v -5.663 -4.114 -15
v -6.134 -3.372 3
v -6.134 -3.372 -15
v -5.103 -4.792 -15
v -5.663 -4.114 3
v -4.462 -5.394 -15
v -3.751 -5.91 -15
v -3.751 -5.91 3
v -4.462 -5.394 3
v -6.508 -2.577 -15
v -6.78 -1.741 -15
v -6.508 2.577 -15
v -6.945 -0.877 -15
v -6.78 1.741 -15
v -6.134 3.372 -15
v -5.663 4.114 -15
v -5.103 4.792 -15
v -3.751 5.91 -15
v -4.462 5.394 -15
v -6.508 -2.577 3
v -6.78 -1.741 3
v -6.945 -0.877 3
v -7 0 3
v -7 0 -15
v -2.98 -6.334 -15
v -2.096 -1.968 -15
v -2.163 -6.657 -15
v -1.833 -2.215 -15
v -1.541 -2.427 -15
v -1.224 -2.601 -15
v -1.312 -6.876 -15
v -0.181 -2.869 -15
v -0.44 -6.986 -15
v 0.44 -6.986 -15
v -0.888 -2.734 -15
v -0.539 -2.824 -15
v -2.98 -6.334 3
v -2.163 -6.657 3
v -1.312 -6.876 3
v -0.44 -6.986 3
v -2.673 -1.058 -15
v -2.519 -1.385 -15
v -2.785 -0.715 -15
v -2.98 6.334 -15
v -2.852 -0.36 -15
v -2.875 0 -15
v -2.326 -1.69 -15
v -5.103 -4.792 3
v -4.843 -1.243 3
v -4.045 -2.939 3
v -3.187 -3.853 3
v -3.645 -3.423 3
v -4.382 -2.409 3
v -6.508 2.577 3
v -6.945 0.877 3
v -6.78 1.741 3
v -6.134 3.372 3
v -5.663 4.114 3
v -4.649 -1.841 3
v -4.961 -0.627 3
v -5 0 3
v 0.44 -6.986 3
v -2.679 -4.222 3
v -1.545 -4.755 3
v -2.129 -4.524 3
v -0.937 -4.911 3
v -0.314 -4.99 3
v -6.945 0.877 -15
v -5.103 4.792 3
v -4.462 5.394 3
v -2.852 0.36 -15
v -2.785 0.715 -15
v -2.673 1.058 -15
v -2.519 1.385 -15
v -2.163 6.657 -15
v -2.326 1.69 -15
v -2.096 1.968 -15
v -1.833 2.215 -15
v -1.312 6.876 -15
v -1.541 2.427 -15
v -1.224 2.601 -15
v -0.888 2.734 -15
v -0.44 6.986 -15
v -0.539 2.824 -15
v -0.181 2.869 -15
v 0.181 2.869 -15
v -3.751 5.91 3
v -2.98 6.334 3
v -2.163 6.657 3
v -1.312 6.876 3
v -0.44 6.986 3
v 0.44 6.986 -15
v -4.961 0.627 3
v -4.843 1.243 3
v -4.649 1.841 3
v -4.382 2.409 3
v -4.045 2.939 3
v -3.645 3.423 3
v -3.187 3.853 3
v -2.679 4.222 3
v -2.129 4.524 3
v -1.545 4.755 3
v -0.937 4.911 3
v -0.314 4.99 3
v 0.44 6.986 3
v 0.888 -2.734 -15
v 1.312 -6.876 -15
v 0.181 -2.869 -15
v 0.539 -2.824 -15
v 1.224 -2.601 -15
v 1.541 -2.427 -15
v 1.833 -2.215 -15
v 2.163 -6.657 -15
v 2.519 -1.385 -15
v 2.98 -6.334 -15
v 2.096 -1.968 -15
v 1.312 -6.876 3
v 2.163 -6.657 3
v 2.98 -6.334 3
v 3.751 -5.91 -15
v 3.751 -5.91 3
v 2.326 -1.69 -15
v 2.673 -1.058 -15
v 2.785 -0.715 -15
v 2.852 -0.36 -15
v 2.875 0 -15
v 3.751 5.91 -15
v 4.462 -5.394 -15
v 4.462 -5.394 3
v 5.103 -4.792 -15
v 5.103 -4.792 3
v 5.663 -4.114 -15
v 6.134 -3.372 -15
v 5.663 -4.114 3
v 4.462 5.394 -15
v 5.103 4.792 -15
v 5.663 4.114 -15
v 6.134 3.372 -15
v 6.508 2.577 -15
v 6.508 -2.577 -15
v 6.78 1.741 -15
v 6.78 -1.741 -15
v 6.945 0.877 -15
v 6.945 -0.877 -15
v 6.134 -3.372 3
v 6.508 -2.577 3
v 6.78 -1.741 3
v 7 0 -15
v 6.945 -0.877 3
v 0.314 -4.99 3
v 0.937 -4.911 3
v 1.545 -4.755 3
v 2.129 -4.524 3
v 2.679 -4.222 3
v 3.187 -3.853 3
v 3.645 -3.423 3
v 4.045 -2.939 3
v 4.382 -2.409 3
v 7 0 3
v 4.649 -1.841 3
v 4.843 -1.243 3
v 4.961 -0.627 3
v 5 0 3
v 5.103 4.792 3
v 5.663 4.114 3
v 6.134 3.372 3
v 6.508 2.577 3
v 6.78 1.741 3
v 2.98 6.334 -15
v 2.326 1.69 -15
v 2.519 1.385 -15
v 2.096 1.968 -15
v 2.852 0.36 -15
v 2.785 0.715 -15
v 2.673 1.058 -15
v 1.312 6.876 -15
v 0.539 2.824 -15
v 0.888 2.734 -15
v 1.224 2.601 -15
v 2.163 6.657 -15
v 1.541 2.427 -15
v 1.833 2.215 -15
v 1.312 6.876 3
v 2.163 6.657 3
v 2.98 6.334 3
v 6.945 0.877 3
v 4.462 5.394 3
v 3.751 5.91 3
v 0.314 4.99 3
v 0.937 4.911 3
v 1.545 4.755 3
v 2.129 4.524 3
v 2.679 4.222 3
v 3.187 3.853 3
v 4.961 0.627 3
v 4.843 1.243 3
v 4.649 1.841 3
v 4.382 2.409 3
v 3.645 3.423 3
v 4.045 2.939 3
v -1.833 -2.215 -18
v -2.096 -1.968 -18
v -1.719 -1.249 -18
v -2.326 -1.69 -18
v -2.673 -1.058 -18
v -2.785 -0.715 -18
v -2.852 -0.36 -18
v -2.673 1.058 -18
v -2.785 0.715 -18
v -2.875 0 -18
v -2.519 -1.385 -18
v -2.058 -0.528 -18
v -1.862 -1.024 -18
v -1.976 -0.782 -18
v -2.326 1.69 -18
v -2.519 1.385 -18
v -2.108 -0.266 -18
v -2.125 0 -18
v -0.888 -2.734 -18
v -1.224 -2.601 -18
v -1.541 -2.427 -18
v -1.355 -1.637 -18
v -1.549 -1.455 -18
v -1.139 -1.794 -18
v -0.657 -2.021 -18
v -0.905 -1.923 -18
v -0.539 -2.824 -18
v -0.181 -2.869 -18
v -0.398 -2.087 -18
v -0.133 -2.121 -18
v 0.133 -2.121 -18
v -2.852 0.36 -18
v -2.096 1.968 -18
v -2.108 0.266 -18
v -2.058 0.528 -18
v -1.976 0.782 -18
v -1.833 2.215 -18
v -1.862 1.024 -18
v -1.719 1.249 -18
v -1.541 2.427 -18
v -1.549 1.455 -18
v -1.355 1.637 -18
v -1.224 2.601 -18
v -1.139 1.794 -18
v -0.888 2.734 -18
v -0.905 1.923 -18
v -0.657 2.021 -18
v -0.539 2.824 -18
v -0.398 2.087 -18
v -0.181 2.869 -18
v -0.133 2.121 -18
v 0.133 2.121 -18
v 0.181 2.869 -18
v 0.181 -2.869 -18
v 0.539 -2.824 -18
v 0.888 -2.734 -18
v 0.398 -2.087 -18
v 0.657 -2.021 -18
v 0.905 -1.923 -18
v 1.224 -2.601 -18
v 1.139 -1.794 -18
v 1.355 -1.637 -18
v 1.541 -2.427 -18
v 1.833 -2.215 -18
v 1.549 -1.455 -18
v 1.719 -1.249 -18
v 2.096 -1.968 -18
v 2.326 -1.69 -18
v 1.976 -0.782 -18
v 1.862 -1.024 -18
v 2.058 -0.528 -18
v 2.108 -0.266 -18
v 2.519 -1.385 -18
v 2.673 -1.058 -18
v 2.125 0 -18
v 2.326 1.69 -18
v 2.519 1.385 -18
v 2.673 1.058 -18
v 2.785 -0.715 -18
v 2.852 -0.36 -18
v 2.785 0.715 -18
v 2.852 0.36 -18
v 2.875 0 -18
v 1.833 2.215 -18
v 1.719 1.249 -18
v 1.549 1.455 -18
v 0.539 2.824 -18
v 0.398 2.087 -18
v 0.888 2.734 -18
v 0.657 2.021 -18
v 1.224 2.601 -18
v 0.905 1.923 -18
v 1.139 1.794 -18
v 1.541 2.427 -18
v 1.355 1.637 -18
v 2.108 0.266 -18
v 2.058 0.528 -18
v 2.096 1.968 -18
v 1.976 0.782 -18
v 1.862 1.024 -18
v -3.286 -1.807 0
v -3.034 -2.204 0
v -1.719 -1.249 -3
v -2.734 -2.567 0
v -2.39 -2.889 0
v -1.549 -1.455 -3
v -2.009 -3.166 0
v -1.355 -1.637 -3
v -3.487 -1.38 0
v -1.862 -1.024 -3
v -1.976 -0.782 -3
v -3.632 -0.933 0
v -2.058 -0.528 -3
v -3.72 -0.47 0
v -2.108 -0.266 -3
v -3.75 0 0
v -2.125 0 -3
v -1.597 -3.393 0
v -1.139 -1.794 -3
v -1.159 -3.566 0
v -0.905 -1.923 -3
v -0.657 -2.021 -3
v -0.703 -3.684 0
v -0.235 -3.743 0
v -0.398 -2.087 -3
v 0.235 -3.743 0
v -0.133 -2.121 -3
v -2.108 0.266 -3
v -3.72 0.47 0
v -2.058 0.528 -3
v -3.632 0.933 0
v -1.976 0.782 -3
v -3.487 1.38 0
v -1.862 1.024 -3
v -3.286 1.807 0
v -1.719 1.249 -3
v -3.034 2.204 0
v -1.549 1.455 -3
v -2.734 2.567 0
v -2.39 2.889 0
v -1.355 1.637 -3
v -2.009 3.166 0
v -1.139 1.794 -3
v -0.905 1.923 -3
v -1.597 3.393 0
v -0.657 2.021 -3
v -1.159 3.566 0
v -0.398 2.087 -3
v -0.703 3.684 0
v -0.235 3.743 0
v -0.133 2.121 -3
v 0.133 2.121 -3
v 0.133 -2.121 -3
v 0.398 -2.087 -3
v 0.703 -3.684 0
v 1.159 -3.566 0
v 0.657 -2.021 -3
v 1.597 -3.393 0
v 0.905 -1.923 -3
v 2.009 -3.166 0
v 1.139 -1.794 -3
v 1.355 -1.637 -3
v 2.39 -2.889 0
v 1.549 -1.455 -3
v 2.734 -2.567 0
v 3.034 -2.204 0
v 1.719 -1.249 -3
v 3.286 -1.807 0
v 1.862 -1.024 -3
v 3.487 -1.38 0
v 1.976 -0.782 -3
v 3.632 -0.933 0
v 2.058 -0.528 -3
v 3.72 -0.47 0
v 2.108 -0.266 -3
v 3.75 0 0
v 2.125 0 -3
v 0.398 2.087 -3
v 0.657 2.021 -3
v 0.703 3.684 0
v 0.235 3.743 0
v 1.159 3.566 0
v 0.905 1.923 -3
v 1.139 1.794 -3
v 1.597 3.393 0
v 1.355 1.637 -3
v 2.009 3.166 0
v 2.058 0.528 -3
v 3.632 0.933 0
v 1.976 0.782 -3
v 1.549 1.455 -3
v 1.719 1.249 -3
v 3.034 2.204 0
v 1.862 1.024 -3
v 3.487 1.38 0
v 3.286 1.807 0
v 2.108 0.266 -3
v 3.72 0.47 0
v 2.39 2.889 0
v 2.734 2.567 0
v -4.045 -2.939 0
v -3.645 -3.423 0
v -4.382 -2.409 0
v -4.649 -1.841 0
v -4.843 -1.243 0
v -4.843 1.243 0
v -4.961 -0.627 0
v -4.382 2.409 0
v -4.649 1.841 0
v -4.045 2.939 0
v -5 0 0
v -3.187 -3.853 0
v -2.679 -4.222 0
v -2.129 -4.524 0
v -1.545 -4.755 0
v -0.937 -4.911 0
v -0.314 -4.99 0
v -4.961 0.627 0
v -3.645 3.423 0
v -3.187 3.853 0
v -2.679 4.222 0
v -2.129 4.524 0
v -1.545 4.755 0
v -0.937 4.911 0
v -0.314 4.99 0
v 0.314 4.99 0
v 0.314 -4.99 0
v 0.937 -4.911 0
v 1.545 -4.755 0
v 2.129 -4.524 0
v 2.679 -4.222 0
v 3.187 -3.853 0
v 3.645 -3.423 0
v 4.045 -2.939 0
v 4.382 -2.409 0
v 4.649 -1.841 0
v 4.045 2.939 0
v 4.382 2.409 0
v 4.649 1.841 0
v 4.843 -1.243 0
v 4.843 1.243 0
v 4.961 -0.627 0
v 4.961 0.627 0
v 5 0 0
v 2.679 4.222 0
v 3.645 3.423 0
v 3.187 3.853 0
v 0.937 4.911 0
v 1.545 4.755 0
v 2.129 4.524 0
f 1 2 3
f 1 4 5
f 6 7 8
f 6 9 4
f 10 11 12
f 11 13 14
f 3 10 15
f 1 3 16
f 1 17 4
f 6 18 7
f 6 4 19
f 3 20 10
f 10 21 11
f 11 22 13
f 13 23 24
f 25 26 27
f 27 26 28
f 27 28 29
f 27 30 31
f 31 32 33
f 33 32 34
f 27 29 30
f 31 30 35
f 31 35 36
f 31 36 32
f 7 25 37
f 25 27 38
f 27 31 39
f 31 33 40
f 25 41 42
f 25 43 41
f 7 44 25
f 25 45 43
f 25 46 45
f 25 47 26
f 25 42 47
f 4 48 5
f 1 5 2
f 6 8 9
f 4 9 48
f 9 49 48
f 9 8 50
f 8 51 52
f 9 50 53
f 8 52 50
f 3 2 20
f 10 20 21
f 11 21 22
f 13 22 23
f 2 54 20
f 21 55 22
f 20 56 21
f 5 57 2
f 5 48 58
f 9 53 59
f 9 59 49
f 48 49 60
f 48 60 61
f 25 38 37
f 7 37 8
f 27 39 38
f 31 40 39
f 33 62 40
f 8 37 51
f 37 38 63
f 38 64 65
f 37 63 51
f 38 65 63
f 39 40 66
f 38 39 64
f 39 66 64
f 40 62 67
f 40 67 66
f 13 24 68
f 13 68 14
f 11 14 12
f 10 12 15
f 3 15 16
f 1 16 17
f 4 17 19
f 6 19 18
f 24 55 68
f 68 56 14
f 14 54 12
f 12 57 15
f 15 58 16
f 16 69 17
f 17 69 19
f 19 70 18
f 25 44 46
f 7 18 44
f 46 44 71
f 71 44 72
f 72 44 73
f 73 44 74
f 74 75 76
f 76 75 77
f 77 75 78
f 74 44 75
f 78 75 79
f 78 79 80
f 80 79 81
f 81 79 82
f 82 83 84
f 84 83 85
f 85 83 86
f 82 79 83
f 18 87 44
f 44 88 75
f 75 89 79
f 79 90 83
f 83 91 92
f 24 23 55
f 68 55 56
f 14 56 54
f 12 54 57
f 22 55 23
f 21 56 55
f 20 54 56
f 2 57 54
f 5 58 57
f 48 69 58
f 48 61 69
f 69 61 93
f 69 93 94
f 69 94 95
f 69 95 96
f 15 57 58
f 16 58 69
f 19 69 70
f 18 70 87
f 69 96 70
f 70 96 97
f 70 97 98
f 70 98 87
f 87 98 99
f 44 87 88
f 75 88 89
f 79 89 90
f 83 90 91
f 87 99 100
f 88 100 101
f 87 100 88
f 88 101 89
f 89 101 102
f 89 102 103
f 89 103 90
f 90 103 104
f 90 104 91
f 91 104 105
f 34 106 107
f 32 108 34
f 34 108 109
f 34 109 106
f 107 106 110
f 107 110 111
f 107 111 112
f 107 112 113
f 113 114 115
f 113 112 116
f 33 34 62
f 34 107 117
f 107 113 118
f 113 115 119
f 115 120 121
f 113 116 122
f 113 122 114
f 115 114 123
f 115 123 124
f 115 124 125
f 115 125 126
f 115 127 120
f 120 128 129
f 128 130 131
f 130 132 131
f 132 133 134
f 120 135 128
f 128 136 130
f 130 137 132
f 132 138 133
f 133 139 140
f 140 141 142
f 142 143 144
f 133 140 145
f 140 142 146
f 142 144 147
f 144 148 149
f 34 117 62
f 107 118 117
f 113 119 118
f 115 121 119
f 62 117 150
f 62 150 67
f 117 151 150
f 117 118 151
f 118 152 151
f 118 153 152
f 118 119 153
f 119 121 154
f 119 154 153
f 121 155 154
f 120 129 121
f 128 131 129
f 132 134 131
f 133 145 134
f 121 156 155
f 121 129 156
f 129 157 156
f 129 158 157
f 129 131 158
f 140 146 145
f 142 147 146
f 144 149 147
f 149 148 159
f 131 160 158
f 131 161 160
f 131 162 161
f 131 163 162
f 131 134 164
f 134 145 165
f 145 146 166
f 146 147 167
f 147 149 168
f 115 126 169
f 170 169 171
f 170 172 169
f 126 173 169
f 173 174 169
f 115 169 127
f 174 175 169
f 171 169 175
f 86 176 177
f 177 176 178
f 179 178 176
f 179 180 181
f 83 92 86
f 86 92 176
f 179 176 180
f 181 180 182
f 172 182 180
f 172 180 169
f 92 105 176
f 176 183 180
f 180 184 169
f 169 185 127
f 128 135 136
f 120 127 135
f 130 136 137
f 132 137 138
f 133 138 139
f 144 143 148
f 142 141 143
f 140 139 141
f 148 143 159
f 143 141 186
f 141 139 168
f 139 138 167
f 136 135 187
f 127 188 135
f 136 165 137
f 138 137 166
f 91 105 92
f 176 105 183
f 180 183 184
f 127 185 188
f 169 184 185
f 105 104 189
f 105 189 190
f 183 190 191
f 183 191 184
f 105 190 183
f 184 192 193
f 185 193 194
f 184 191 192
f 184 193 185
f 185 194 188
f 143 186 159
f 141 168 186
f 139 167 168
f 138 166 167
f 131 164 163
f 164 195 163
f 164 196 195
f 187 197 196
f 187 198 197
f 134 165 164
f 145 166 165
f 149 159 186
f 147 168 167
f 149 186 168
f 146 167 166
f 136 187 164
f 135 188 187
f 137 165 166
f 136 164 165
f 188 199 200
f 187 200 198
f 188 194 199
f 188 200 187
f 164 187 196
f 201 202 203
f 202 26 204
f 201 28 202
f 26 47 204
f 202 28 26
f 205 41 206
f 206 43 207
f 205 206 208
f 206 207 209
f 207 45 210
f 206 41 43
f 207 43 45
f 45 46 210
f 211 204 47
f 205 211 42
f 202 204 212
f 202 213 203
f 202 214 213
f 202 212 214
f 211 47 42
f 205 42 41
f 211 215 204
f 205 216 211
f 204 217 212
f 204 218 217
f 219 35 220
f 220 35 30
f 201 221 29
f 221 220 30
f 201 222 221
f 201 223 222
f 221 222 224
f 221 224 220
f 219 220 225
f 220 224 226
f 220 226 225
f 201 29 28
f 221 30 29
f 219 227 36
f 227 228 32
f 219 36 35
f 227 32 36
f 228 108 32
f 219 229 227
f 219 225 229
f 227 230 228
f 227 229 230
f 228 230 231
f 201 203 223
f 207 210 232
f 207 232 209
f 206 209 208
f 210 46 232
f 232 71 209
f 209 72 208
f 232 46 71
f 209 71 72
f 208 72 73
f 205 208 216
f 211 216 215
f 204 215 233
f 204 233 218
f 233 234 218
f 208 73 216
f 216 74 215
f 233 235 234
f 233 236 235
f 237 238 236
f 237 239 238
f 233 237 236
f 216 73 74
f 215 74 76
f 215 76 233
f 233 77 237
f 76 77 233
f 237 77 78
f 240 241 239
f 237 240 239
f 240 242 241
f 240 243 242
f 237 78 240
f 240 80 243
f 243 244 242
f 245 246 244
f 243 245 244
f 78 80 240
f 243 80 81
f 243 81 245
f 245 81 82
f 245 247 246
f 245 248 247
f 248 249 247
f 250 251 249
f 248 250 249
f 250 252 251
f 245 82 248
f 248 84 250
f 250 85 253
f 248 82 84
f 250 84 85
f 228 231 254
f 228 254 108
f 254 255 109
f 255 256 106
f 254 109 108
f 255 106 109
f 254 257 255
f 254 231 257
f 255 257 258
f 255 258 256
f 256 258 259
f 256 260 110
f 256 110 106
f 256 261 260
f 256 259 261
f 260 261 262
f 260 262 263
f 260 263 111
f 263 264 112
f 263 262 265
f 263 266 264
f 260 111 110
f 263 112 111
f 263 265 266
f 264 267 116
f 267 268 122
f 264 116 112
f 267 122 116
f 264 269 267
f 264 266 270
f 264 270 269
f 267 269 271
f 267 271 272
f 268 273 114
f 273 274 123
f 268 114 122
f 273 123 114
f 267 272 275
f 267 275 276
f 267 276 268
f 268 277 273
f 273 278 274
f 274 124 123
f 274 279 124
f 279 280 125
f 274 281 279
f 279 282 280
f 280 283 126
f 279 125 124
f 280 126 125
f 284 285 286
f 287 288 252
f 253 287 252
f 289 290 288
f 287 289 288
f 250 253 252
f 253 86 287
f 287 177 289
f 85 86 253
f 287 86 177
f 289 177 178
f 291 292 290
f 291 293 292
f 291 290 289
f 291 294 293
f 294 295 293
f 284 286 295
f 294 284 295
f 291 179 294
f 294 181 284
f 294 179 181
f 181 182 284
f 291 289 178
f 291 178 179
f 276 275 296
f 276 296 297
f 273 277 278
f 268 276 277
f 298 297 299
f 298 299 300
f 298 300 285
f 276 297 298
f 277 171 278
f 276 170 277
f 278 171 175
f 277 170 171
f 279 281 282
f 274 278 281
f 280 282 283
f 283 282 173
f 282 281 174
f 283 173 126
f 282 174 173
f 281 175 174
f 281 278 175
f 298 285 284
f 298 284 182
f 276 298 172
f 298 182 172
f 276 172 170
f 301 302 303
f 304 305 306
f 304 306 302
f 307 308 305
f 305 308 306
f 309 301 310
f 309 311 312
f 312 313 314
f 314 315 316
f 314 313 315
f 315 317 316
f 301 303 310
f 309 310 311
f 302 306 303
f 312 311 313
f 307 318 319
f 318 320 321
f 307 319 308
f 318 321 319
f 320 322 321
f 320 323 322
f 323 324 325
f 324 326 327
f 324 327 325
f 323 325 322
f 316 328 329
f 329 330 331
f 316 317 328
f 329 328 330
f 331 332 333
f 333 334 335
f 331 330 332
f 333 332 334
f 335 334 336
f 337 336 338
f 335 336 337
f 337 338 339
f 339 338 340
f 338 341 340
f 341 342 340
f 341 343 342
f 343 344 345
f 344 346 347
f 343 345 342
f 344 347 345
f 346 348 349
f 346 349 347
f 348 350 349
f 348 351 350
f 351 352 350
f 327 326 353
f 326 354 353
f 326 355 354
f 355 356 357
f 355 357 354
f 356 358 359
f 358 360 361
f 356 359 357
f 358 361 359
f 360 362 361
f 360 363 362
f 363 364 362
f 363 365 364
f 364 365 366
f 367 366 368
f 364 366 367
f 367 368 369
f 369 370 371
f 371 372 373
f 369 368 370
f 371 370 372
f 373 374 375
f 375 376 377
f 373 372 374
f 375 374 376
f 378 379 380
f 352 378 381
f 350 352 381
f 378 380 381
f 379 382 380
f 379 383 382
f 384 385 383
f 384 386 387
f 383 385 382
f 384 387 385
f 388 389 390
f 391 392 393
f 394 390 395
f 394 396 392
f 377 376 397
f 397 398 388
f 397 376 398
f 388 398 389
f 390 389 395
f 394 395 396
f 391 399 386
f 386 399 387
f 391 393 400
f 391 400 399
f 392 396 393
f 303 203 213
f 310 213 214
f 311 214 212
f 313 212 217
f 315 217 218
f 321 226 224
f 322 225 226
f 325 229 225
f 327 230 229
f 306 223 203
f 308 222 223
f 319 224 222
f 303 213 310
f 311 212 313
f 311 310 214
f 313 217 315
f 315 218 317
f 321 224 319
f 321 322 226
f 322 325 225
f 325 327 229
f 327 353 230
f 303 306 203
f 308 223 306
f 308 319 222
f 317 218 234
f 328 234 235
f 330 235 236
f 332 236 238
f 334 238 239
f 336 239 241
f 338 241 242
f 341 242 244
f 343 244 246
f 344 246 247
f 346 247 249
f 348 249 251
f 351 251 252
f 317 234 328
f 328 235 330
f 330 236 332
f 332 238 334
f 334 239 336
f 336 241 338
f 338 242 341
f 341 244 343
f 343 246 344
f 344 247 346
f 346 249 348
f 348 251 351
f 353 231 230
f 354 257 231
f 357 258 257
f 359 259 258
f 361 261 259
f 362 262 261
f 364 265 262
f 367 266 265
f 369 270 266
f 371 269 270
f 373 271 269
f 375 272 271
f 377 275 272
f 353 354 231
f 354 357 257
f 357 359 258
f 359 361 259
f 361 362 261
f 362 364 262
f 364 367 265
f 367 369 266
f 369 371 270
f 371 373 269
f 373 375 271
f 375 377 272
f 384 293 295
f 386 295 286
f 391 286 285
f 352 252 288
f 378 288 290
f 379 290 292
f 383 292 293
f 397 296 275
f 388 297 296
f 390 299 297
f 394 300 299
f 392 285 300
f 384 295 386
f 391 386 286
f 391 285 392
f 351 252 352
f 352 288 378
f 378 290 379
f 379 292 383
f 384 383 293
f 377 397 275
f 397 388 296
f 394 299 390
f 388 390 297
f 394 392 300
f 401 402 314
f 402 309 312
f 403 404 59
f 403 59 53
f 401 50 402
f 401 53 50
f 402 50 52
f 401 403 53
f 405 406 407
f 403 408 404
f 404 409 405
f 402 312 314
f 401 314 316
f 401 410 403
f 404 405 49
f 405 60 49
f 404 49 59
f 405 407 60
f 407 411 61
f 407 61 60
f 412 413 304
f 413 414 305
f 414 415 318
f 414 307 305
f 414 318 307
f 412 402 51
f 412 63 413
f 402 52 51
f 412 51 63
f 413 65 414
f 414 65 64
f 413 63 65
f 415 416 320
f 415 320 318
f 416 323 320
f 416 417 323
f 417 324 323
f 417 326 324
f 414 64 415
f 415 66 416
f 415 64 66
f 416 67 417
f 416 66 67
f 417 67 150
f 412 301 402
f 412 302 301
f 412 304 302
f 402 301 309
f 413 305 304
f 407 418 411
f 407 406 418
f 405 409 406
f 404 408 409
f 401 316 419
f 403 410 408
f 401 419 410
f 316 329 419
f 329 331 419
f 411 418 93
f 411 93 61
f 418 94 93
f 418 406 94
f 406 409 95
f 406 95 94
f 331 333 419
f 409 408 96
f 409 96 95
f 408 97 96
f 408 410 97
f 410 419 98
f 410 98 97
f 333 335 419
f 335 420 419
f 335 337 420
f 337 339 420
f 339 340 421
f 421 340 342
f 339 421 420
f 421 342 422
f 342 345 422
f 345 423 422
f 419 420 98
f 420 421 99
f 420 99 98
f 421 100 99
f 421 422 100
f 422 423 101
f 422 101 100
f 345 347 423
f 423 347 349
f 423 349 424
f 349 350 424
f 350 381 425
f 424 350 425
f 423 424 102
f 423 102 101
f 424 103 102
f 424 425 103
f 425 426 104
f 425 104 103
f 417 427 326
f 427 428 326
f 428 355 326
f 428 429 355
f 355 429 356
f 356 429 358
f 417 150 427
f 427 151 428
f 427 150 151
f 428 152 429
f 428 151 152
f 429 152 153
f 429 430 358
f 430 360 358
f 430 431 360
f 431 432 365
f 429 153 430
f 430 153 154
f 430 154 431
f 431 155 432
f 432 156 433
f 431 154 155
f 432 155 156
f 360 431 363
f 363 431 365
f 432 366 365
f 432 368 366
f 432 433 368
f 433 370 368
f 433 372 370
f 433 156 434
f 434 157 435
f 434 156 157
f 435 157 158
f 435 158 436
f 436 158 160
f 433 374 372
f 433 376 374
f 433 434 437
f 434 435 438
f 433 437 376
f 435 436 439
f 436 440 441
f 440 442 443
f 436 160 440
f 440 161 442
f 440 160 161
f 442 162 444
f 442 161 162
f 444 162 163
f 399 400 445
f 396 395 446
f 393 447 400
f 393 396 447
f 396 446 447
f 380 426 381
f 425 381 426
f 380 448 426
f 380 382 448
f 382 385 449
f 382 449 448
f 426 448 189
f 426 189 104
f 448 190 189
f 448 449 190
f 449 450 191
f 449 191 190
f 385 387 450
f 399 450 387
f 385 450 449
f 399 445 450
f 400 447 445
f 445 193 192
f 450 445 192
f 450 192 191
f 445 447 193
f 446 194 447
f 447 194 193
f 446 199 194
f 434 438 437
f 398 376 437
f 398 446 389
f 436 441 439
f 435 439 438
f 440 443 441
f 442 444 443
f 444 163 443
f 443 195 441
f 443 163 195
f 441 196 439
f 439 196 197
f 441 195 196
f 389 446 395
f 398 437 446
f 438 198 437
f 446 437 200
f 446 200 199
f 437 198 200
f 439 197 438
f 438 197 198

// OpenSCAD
$fn = 50;


difference() {
	union() {
		translate(v = [0, 0, -15.0000000000]) {
			cylinder(h = 18, r = 7.0000000000);
		}
		#translate(v = [0, 0, -18.0000000000]) {
			cylinder(h = 18, r = 2.8750000000);
		}
	}
	union() {
		translate(v = [0, 0, 0]) {
			rotate(a = [0, 0, 0]) {
				difference() {
					union() {
						translate(v = [0, 0, -18.0000000000]) {
							cylinder(h = 18, r = 2.0000000000);
						}
						translate(v = [0, 0, -3]) {
							cylinder(h = 3, r1 = 2.1250000000, r2 = 3.7500000000);
						}
						translate(v = [0, 0, -18.0000000000]) {
							cylinder(h = 18, r = 2.1250000000);
						}
						translate(v = [0, 0, -18.0000000000]) {
							cylinder(h = 18, r = 2.0000000000);
						}
					}
					union();
				}
			}
		}
		#cylinder(h = 3, r = 5.0000000000);
	}
}
